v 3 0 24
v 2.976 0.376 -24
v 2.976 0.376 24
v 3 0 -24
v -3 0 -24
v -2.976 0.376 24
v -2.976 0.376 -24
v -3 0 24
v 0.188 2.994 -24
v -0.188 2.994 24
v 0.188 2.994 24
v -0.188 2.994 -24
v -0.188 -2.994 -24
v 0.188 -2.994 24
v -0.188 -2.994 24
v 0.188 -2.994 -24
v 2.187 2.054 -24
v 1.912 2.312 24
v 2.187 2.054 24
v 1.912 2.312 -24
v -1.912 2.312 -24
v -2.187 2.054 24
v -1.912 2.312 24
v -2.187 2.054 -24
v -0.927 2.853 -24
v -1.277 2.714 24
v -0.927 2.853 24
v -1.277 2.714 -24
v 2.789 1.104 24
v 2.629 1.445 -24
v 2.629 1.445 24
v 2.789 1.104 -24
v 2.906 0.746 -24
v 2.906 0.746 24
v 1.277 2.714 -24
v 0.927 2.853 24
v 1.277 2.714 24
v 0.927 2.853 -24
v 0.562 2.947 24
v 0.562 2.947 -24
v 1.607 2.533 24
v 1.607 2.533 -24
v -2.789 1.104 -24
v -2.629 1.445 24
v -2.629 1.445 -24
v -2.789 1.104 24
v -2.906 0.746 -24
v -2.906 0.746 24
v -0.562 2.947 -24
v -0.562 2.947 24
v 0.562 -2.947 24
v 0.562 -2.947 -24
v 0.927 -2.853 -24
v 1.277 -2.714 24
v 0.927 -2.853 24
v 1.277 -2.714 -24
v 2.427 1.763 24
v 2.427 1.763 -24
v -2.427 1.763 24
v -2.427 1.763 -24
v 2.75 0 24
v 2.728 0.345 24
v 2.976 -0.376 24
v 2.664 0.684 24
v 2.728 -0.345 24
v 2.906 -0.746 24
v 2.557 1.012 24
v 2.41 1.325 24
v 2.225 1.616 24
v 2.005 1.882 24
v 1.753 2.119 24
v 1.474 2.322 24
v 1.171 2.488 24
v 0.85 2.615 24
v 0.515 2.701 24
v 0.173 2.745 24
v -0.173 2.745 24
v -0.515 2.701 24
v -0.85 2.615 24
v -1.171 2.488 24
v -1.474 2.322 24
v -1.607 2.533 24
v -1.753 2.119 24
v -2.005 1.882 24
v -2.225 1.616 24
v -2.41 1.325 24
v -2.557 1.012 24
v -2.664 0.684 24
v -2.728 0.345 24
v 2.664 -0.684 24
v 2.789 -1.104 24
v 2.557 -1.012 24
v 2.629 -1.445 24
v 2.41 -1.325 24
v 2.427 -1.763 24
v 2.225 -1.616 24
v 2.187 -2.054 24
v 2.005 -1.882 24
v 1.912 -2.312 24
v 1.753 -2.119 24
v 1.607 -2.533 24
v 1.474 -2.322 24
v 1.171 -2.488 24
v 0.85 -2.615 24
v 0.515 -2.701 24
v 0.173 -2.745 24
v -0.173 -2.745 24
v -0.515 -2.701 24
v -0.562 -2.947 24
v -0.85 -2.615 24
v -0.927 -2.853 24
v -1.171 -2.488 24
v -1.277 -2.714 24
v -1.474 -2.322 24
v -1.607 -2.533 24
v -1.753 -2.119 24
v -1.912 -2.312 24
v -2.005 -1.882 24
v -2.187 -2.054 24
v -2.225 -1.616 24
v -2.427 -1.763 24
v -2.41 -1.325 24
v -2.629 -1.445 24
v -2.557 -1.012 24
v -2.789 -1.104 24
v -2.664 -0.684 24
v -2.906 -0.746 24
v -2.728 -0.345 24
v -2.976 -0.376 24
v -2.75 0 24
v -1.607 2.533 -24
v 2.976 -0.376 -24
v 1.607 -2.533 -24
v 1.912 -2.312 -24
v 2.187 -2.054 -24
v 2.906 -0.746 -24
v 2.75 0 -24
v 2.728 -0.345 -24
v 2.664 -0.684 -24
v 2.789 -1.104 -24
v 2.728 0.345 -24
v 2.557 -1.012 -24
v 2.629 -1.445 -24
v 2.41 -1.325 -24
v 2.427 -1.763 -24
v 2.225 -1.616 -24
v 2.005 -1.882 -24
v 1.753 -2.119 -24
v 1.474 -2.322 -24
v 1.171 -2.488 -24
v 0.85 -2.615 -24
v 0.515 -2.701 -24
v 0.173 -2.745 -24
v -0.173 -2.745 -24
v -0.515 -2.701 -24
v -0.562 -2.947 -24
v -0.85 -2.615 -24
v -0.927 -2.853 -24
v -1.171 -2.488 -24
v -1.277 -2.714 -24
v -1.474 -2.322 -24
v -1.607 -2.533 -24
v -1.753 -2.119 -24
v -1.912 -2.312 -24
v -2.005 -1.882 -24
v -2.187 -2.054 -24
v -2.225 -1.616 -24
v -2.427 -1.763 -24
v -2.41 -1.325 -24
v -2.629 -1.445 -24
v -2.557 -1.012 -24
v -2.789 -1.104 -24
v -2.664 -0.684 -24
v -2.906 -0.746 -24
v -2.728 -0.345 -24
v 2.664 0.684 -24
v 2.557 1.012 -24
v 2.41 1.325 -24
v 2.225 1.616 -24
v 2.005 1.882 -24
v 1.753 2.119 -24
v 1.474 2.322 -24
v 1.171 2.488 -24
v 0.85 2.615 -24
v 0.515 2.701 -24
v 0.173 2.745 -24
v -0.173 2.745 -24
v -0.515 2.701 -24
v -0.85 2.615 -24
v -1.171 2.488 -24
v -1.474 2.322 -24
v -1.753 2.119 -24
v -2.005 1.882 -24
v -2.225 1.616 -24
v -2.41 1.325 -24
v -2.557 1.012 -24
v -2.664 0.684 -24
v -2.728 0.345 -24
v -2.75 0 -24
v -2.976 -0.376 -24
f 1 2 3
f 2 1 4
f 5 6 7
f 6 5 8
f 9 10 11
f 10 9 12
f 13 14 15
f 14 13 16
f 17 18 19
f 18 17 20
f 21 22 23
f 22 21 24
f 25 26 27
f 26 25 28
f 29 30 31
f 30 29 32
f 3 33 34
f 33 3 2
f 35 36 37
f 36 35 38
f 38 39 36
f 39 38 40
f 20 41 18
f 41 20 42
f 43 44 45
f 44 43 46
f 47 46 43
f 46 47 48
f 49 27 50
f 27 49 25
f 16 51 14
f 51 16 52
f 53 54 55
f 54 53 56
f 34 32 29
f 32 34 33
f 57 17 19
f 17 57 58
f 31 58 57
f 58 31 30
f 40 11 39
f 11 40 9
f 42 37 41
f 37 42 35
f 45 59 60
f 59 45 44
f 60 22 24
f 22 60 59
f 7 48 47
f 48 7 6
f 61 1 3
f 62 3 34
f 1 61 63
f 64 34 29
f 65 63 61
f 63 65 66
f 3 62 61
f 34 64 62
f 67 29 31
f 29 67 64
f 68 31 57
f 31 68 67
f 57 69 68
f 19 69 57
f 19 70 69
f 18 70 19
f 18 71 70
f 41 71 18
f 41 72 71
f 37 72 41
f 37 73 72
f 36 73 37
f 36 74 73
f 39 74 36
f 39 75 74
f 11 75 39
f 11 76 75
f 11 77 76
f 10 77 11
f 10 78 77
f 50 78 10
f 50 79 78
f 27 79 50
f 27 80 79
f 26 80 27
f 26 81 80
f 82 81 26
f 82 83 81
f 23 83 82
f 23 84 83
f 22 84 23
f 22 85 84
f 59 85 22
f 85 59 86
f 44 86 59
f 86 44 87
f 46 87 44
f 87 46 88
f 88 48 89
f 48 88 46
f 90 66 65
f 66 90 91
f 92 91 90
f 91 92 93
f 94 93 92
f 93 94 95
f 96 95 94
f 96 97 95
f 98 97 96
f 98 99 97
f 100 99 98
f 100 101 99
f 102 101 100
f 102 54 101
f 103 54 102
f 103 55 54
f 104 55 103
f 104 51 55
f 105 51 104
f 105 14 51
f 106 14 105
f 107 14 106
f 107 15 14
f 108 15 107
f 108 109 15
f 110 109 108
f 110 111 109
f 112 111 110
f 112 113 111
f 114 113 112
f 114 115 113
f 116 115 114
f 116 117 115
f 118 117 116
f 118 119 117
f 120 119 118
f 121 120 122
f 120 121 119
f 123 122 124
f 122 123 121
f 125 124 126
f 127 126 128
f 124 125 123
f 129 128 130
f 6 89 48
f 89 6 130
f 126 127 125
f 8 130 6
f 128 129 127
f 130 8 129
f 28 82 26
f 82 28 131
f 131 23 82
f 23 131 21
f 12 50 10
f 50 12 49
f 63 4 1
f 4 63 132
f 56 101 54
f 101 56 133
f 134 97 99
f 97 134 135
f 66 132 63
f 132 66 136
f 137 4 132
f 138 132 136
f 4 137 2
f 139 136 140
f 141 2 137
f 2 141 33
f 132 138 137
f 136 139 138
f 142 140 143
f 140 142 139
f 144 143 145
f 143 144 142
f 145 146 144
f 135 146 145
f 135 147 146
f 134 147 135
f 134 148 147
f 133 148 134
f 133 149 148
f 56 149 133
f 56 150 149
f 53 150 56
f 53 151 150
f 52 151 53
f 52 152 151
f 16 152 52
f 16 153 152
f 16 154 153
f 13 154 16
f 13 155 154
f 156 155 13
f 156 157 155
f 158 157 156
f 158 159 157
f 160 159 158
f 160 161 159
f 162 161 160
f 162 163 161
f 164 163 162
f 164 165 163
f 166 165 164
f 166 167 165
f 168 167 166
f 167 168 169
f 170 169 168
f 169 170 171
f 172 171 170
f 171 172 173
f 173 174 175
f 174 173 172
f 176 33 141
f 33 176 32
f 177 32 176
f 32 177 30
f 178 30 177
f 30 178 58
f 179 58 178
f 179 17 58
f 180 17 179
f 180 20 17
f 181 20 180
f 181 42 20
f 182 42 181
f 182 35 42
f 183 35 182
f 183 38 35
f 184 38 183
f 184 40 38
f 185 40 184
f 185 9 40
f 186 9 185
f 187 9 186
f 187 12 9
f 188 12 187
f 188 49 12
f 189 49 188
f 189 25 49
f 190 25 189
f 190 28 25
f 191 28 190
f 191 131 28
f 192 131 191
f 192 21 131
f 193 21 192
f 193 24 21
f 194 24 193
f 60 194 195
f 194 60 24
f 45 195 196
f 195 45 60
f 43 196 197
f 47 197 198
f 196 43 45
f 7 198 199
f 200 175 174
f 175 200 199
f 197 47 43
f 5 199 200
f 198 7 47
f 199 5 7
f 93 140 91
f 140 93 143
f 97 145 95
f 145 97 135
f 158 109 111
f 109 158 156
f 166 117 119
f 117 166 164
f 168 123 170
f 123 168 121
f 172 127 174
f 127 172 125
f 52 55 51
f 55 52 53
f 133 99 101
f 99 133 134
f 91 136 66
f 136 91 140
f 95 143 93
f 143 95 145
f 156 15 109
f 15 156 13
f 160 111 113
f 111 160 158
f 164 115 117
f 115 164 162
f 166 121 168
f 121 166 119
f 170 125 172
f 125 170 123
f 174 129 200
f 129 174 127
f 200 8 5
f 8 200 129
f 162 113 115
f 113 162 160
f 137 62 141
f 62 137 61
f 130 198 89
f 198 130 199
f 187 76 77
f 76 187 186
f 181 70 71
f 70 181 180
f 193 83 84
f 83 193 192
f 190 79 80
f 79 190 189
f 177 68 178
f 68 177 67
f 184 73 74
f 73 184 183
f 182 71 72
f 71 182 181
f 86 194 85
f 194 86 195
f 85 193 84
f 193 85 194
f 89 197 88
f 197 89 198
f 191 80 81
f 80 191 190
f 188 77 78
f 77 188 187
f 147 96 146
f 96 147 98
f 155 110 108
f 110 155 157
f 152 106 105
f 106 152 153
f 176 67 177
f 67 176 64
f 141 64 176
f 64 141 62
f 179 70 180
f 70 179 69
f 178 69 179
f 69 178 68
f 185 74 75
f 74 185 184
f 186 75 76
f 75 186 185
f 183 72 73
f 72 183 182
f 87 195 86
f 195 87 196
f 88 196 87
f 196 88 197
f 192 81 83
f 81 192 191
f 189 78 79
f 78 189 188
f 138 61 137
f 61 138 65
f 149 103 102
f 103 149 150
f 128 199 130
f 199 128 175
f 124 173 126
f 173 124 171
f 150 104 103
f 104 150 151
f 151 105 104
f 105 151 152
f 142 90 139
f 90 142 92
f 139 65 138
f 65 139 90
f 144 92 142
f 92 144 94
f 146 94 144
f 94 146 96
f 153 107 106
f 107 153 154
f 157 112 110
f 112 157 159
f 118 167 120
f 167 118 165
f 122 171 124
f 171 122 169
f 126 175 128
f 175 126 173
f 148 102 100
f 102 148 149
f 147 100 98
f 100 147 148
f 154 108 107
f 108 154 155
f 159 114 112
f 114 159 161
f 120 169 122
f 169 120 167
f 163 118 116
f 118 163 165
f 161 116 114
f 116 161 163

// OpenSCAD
$fn = 50;


difference() {
	union() {
		translate(v = [0, 0, -24.0000000000]) {
			cylinder(h = 48, r = 3.0000000000);
		}
	}
	union() {
		translate(v = [0, 0, -100.0000000000]) {
			cylinder(h = 200, r = 2.7500000000);
		}
	}
}
